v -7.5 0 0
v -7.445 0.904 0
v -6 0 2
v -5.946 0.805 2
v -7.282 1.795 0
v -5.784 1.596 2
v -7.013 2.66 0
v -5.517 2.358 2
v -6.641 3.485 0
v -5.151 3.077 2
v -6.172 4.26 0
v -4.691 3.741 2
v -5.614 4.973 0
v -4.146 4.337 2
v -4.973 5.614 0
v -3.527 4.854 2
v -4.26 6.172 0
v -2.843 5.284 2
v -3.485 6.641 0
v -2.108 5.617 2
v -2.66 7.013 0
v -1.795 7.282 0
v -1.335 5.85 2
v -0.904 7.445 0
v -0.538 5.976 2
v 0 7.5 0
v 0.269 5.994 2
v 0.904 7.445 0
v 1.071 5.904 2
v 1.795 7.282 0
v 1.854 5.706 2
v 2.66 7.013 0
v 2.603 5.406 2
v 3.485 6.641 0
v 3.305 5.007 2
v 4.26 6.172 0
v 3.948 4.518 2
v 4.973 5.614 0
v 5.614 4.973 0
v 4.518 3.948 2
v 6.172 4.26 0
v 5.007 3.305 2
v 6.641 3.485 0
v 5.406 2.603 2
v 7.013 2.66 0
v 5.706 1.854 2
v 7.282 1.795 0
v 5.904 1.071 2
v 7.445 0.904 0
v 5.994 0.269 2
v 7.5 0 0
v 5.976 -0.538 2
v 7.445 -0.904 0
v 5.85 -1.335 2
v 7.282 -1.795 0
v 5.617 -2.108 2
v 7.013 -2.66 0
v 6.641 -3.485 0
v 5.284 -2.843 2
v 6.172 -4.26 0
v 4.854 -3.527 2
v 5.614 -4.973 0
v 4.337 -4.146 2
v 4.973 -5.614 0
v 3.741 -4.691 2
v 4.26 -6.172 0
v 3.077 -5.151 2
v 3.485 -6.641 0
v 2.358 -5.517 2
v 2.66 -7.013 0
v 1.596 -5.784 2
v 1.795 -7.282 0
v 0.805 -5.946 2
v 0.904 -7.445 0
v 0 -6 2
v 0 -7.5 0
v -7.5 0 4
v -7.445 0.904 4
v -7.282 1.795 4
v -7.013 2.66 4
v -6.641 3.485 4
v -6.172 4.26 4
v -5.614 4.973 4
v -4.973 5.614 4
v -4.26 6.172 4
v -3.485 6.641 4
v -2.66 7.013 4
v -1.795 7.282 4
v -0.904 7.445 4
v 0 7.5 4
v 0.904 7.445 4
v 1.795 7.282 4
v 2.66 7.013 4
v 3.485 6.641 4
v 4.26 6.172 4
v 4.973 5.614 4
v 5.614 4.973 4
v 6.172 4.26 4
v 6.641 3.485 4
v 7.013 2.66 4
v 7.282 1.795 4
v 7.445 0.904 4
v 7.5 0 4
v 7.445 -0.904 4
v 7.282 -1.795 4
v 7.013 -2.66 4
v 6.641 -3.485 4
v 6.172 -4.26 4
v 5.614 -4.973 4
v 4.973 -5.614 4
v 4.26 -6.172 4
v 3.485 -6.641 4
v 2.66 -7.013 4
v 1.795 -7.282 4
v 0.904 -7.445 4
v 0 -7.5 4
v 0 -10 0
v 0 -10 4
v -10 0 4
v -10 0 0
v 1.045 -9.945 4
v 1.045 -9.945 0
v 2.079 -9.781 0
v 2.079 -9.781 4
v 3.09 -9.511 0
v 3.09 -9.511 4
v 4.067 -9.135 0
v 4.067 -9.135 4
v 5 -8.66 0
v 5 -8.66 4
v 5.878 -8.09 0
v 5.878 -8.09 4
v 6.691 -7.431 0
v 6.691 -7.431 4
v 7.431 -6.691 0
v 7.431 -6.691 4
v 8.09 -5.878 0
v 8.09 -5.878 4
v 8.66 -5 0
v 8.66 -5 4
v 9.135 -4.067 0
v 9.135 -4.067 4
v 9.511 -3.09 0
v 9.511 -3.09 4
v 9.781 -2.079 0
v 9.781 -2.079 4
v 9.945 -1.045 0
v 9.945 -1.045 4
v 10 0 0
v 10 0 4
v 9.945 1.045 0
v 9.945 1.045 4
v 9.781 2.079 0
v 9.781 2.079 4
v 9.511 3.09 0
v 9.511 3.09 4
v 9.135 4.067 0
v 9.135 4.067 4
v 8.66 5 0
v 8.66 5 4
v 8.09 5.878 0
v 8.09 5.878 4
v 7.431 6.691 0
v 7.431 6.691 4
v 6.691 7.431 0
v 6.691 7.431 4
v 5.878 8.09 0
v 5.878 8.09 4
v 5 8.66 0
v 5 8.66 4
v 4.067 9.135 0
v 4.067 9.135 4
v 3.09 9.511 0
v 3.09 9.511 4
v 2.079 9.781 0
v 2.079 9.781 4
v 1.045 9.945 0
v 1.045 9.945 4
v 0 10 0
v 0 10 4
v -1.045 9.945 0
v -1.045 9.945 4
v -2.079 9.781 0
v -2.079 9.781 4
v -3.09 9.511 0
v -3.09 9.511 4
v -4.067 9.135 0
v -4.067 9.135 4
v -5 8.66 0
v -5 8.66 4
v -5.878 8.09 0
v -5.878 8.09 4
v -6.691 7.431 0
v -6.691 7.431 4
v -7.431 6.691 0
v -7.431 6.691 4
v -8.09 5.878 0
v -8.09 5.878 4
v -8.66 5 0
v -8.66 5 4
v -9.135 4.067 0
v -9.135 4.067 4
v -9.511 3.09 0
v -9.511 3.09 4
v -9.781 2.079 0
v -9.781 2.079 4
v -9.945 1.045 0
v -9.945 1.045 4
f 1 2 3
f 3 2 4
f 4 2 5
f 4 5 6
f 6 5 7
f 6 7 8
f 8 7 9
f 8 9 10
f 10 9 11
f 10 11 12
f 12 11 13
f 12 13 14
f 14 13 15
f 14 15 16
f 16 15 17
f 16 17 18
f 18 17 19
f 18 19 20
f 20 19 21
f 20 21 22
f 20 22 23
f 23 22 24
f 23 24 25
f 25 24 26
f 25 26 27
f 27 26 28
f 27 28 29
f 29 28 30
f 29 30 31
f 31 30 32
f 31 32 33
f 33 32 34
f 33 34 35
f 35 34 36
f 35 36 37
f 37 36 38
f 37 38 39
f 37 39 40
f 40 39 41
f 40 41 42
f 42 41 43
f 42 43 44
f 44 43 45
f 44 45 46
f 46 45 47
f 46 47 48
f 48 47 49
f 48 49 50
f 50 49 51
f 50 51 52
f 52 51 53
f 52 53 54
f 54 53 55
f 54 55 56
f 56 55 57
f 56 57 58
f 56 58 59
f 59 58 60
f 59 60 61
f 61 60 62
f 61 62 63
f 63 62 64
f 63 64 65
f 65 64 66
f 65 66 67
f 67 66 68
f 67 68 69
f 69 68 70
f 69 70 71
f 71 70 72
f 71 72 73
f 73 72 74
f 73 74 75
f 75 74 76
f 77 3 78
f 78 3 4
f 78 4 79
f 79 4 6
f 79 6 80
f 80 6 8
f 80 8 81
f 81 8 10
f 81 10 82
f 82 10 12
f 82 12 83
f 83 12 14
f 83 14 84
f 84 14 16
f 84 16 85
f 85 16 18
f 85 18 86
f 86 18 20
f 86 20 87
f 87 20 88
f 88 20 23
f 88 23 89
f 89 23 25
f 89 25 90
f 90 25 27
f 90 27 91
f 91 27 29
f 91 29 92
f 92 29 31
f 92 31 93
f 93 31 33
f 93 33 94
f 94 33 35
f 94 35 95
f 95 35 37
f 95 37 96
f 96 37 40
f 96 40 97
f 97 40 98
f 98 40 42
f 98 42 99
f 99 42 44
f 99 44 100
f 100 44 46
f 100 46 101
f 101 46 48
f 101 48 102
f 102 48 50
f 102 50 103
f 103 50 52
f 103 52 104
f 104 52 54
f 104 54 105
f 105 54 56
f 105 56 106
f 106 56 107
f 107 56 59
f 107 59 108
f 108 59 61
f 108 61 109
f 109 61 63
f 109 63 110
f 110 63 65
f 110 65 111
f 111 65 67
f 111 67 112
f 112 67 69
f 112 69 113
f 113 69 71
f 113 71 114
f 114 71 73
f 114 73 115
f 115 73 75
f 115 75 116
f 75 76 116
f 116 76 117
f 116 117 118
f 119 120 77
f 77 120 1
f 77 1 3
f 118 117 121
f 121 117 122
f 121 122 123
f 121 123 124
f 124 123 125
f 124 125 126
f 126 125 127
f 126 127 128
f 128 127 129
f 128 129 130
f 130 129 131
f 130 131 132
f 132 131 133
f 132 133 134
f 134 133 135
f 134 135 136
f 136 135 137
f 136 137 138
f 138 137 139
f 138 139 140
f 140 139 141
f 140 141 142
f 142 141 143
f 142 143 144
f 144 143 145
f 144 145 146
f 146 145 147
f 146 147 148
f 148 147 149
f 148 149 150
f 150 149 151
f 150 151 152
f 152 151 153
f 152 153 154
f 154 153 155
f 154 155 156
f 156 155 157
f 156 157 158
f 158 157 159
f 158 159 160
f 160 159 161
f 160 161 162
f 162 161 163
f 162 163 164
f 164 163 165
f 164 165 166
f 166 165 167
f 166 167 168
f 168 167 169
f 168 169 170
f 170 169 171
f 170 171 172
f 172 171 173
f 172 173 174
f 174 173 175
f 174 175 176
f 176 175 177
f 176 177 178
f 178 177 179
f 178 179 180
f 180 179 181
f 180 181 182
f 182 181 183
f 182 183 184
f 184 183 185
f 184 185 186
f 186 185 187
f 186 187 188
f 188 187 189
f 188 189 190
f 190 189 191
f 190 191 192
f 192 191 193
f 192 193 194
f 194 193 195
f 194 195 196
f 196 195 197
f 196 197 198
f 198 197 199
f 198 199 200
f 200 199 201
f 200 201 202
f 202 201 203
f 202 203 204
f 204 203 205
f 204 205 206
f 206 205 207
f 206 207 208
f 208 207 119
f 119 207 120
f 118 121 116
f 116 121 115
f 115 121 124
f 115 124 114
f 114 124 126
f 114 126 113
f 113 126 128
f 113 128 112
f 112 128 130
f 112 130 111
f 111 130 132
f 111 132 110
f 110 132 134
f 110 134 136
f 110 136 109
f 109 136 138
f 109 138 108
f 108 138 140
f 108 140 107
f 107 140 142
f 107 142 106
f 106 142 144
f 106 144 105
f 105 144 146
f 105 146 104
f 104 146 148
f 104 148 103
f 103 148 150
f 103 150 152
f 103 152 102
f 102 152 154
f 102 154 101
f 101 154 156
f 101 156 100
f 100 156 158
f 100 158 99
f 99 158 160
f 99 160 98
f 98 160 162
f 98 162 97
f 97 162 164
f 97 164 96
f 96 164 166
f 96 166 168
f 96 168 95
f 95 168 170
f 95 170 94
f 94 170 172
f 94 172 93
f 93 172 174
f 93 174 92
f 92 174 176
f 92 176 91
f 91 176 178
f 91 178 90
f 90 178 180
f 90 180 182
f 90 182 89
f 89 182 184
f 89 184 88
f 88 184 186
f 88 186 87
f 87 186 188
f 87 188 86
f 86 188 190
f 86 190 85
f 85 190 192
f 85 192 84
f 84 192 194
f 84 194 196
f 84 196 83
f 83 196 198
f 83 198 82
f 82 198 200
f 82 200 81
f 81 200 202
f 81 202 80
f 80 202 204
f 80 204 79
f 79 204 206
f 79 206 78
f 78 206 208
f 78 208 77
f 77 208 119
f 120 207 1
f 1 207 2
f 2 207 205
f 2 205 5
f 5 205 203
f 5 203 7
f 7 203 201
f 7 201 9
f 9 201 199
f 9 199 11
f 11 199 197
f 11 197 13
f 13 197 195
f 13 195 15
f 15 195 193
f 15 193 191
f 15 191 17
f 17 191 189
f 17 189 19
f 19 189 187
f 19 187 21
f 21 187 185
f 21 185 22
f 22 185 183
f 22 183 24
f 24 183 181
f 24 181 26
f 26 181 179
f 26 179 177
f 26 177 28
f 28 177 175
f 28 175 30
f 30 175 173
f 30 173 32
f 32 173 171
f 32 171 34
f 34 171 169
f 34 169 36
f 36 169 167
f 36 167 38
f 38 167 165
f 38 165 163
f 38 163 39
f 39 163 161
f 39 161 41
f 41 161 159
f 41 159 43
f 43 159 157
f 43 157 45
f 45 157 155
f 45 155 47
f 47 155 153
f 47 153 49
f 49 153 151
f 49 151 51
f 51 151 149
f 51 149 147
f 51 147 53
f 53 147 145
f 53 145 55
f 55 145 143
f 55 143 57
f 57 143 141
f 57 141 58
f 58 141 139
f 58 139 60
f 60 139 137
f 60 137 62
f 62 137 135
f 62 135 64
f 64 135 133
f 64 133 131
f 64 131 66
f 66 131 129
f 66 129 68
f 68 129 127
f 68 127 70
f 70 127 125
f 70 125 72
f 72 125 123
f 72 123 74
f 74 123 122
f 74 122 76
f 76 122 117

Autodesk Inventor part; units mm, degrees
ref_plane "YZ Plane" through (0, 0, 0) normal (1, 0, 0) x (0, 1, 0)
ref_plane "XZ Plane" through (0, 0, 0) normal (0, 1, 0) x (-1, 0, 0)
ref_plane "XY Plane" through (0, 0, 0) normal (0, 0, 1) x (1, 0, 0)
sketch "Skizze1" plane through (0, 0, 0) normal (0, 0, 1) x (1, 0, 0)
  circle A0 centre (0, 0) radius 7.5
  circle A1 centre (0, 0) radius 10
  line L0 (0, 0) -> (-10, 0)
  line L1 (0, 0) -> (0, -10)
  point P0 (0, -7.5)
  point P1 (-7.5, 0)
  dimension "d0" = 15
  dimension "d1" = 20
extrude "Extrusion1" add sketch "Skizze1" along normal blind 4 contours A0 L0 A1 L1 picked at (-8.9972, 1.396)
sketch "Skizze2" plane through (-10, 0, 0) normal (0, -1, 0) x (1, 0, 0)
  line L0 (2.5, 0) -> (2.5, 4) construction
  line L1 (2.5, 2) -> (4, 2) construction
  line L2 (4, 2) -> (2.5, 4)
  line L3 (20, 4) -> (0, 4) projected
  line L4 (4, 2) -> (2.5, 0)
  line L5 (2.5, 0) -> (2.5, 4)
  line L6 (10, -0.8) -> (10, 4.8) projected
  point P0 (10, 0)
  point P1 (10, 4)
  dimension "d4" = 1.5
revolve "Umdrehung1" add sketch "Skizze2" angle 270 about axis through (0, 0, -10) along (0, 0, -1)
properties part number "C-ClipV1"
